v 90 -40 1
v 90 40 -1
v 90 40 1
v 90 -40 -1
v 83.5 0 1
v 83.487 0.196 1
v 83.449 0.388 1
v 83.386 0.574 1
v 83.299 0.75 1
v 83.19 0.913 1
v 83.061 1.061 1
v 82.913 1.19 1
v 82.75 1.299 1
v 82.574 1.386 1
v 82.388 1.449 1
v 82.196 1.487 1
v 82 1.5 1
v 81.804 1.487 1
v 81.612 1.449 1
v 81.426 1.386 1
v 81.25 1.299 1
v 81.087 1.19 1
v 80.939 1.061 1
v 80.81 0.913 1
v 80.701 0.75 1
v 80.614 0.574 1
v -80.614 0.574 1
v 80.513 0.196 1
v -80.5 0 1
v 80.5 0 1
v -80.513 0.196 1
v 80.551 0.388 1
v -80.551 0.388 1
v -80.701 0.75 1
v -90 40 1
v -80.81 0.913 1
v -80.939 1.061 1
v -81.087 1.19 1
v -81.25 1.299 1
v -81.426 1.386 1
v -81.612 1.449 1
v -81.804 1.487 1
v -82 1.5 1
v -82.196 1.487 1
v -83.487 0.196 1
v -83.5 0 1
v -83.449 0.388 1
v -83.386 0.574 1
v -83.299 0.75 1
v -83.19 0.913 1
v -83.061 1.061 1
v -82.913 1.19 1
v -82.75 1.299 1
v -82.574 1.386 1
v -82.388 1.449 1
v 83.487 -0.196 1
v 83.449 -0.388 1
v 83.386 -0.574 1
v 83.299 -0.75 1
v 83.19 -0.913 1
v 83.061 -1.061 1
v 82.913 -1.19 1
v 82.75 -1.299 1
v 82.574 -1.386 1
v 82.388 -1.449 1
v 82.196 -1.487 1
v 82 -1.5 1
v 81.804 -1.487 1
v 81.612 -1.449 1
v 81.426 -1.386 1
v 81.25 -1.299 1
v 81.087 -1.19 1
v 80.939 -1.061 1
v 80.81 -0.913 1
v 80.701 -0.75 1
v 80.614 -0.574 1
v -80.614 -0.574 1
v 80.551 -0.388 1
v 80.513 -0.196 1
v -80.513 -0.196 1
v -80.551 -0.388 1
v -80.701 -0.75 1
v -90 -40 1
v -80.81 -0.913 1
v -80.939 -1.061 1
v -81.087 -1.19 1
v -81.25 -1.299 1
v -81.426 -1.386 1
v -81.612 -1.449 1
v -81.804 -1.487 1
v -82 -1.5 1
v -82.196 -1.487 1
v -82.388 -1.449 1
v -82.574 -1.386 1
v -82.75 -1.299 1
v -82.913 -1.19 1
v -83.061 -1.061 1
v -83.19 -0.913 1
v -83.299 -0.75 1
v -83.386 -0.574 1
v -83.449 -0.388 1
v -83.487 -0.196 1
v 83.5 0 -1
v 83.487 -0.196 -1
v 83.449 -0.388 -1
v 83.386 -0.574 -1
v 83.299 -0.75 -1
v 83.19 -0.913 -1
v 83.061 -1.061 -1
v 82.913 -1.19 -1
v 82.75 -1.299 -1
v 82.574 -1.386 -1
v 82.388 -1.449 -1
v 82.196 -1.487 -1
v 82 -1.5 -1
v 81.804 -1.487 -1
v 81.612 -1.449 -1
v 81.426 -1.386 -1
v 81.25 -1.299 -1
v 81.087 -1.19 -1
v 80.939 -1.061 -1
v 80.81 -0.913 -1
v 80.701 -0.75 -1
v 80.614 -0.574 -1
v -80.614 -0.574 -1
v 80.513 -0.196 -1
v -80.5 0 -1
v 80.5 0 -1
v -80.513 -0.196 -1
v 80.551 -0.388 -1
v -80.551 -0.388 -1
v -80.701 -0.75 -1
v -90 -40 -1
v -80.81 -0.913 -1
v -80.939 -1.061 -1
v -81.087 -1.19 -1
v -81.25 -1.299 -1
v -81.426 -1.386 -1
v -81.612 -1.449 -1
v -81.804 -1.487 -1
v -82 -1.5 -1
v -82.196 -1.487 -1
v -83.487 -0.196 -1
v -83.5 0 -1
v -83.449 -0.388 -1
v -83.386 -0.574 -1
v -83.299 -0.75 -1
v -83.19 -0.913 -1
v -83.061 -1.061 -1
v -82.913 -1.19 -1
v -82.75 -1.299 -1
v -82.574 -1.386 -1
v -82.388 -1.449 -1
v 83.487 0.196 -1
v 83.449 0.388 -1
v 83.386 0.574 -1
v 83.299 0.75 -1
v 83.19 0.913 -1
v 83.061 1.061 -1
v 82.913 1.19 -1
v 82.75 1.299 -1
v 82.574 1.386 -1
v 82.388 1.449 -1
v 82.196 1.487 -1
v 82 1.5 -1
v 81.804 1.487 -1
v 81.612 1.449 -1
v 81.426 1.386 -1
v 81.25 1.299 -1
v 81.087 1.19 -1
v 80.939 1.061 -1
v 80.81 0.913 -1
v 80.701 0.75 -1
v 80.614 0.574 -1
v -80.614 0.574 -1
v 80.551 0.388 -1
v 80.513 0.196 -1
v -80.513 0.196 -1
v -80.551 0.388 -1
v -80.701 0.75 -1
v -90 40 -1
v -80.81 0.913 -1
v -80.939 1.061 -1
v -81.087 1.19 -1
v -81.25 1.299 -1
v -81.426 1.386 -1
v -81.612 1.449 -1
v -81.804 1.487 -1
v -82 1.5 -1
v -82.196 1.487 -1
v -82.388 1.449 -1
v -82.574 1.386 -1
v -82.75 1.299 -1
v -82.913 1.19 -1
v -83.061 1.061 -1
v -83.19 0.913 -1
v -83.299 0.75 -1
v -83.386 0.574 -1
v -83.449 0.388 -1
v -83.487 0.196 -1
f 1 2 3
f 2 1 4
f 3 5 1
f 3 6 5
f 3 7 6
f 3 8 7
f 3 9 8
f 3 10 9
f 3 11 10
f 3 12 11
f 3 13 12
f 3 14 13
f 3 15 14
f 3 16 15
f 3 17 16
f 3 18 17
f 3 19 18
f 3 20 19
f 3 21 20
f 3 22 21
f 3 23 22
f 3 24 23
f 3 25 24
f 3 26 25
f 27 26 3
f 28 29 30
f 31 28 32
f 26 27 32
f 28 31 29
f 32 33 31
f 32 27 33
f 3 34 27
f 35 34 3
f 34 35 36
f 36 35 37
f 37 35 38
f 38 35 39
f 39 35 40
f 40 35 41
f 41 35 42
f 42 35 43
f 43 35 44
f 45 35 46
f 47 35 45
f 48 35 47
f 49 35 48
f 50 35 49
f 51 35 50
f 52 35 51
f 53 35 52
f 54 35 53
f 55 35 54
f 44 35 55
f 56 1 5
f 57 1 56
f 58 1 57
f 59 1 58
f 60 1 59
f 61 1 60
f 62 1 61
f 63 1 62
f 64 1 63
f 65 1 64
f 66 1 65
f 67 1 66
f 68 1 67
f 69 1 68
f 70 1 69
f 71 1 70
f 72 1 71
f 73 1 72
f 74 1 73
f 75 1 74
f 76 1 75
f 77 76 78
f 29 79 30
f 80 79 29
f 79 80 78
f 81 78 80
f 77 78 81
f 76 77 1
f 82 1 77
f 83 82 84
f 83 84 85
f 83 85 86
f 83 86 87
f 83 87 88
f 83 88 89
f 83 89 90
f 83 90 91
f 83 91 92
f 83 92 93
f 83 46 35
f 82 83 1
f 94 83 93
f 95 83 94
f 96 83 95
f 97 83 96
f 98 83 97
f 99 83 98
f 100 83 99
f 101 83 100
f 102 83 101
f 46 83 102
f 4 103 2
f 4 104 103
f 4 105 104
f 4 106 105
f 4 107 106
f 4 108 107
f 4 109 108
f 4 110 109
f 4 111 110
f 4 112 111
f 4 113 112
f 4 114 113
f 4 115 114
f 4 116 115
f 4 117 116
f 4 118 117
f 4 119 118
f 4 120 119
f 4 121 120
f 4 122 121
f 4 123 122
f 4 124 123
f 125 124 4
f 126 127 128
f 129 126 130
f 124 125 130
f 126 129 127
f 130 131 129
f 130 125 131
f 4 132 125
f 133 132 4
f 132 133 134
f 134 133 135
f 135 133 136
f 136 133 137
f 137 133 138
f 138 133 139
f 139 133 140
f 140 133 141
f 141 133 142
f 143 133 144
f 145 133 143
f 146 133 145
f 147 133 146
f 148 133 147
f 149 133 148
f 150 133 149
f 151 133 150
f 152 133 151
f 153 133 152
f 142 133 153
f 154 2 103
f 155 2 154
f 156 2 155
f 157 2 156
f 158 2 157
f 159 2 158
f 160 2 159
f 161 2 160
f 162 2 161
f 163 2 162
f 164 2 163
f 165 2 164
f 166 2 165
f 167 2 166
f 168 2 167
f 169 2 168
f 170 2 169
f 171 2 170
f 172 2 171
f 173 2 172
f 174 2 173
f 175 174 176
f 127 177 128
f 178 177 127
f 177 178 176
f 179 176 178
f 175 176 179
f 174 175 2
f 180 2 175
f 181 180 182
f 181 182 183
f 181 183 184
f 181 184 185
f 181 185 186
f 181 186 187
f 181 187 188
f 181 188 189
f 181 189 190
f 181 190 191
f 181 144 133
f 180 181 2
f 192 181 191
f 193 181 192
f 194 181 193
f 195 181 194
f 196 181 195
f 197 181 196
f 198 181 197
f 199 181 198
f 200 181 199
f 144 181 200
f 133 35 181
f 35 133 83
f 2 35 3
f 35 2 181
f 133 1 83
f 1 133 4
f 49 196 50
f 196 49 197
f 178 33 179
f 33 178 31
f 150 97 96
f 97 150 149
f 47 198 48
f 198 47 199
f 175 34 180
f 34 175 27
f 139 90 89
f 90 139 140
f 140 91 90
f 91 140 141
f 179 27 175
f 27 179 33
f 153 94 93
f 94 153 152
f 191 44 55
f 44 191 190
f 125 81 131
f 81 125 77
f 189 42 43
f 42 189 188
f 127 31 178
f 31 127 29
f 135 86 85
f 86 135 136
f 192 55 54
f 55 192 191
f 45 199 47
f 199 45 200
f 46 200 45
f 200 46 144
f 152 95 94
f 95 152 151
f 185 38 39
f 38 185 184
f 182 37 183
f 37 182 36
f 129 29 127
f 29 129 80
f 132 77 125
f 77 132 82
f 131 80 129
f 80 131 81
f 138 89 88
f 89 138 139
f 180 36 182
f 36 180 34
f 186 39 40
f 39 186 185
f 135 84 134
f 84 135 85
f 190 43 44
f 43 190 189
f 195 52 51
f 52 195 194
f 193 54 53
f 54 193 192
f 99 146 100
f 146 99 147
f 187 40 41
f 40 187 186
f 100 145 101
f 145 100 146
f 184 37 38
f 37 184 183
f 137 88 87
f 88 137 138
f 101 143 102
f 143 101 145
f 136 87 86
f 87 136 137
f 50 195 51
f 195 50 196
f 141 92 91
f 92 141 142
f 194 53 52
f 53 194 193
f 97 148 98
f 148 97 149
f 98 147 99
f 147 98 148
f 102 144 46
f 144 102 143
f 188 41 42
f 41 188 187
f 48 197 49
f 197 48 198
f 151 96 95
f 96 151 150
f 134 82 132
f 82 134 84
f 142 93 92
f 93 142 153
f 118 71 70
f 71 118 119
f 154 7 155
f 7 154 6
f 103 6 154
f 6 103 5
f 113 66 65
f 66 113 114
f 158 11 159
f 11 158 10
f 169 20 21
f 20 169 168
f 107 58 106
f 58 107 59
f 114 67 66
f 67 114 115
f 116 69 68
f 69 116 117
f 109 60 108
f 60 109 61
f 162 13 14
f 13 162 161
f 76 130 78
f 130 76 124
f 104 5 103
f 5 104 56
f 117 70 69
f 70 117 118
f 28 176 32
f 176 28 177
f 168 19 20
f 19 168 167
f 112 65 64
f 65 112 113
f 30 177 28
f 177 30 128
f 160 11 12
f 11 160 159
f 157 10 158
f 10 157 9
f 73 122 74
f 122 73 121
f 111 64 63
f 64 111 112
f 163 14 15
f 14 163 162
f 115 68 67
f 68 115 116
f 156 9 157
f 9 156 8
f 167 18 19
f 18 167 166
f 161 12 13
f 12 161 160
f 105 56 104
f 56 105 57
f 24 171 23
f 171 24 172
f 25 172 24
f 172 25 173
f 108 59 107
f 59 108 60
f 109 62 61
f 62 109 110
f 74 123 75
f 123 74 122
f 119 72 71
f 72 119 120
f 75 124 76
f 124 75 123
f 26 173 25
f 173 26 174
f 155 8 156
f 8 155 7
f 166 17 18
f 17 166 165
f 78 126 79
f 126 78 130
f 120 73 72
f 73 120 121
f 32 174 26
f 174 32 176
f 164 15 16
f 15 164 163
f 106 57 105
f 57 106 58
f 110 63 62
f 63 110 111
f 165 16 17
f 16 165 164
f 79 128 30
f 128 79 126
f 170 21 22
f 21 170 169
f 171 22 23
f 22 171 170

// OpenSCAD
// ========================================
// a 180 x 80 x 2 mm plate with two 3 mm holes
// NeuroCAD canonical IR; dimensions are millimetres
// ========================================
$fn = 48;

difference() {
  cube(size=[180, 80, 2], center=true);
  translate([-82, 0, 0]) {
    cylinder(r=1.5, h=4, center=true);
  }
  translate([82, 0, 0]) {
    cylinder(r=1.5, h=4, center=true);
  }
}
